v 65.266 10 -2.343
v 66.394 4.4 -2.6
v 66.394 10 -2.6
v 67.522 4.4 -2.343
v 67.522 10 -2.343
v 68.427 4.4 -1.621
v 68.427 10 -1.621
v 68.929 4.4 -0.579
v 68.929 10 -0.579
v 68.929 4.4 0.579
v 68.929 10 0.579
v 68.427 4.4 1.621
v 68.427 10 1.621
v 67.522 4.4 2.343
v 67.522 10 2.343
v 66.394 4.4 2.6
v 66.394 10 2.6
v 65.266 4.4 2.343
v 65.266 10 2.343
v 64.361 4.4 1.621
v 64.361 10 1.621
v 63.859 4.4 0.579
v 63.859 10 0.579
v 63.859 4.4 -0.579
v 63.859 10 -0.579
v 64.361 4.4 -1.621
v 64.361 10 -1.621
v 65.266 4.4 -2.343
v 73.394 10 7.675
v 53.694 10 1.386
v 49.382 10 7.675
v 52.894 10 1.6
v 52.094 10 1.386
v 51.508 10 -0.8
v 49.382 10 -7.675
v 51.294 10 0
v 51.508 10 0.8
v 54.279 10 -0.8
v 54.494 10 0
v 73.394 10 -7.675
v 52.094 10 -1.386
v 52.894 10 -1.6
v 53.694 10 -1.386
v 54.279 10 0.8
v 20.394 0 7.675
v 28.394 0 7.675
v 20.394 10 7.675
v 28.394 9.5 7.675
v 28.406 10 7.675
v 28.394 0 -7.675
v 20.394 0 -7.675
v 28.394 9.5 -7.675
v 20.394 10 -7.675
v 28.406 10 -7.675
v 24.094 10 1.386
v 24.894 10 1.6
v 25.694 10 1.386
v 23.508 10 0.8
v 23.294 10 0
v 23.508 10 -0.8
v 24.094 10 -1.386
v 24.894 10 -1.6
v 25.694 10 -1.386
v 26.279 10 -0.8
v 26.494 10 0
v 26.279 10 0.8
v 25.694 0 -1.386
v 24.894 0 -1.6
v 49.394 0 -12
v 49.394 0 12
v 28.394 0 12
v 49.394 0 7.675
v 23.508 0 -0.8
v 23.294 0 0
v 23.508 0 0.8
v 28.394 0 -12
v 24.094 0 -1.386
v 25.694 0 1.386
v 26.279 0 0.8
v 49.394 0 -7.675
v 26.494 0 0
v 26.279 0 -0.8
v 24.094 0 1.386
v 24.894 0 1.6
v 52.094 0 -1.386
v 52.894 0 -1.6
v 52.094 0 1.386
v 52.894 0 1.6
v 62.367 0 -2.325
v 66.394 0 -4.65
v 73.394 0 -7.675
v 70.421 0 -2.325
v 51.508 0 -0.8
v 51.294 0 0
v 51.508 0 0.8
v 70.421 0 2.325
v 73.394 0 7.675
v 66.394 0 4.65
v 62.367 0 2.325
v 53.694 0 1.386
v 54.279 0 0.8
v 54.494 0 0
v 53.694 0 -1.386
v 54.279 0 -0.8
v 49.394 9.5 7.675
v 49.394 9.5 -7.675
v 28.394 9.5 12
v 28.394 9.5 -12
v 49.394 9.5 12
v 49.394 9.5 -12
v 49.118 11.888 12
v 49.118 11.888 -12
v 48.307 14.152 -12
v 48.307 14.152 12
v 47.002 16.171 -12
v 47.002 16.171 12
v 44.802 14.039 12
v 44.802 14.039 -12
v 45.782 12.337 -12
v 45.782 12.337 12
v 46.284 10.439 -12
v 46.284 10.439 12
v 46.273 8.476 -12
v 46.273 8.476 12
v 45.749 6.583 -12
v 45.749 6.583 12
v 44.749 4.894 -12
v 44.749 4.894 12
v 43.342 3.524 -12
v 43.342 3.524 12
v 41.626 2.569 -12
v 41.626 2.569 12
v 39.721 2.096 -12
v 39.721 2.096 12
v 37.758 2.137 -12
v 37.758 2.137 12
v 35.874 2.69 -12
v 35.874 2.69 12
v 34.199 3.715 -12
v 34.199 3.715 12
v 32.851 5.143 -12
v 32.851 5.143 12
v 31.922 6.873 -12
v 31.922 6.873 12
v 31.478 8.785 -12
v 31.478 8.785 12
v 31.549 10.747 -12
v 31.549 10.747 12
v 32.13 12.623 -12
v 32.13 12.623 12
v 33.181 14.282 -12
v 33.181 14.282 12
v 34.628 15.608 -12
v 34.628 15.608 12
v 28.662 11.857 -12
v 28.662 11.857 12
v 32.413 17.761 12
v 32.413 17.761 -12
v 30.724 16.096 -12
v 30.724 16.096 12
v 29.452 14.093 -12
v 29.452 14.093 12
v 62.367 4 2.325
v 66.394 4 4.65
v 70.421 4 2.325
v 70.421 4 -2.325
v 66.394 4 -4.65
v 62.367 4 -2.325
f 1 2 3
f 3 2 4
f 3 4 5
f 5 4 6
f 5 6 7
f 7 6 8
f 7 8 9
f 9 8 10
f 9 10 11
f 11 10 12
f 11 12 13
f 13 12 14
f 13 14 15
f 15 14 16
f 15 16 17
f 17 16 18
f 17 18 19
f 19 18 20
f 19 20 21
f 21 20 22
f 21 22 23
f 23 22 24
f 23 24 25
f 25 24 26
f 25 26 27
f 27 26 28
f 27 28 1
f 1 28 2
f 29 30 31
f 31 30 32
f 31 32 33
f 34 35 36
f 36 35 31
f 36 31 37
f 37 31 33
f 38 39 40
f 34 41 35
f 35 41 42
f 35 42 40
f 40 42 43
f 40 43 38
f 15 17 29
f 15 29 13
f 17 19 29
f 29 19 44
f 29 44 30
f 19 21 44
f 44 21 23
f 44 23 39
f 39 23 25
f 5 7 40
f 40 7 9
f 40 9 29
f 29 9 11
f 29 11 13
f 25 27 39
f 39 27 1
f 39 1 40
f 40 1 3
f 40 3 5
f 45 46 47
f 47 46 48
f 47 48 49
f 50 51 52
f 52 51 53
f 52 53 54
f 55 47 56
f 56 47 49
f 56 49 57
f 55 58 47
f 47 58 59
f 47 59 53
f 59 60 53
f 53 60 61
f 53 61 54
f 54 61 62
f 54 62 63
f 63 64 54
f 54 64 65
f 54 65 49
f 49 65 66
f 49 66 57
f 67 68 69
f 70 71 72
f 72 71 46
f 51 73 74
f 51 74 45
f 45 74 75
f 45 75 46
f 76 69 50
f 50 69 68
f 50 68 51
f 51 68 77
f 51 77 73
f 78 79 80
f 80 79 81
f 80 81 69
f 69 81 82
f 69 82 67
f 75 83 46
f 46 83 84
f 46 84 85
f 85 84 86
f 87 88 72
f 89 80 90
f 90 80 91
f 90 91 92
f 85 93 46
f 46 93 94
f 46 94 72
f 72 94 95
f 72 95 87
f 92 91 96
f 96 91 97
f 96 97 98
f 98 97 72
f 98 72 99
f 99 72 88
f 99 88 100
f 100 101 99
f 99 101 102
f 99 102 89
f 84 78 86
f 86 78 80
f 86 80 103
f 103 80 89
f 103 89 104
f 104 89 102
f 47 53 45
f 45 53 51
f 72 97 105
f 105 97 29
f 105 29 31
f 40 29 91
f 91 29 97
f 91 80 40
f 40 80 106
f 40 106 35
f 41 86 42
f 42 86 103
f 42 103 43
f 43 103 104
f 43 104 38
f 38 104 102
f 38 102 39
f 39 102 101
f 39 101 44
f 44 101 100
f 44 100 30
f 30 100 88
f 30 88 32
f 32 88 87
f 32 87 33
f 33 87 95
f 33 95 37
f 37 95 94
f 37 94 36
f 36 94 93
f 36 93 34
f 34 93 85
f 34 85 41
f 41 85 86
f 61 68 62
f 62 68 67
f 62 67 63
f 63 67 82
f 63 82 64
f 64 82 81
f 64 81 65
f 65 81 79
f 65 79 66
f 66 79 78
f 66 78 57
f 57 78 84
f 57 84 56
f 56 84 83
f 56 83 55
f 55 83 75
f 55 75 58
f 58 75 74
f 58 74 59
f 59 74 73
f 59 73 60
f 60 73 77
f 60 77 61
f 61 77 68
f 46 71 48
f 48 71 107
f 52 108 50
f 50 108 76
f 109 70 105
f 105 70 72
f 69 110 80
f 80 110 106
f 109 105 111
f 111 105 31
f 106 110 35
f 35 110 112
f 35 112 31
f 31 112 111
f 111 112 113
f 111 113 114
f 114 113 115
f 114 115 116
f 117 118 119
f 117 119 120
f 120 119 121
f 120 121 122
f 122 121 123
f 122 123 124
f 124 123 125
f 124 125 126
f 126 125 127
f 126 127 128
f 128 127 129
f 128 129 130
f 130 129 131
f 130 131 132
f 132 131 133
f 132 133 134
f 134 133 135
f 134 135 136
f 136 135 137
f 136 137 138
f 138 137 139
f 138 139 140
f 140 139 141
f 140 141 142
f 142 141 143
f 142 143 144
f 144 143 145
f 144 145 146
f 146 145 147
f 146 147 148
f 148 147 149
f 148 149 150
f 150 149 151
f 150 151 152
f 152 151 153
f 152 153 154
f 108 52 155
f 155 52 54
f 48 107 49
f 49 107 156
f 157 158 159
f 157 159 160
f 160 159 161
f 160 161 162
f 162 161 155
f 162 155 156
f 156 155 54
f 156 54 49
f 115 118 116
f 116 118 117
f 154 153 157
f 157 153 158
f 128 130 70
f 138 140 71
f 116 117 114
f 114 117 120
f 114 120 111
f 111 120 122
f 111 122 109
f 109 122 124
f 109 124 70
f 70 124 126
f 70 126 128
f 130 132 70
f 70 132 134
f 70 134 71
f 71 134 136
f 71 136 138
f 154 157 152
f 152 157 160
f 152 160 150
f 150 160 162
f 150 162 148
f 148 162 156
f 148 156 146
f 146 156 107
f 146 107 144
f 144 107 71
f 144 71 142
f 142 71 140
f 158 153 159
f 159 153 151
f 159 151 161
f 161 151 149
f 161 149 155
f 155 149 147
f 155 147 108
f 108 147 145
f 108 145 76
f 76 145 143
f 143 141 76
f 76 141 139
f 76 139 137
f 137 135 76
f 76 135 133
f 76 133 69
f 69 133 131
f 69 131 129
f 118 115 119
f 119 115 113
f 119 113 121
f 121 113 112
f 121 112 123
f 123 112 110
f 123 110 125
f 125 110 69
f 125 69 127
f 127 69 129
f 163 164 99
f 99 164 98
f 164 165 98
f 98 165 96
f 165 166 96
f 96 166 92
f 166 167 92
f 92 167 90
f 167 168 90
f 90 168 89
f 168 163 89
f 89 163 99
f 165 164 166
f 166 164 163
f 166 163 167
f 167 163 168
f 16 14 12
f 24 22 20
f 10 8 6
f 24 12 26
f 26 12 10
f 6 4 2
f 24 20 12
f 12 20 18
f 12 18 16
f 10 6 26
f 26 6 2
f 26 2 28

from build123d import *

# Parameters (mm, degrees)
SKETCH1_W                = 53
SKETCH1_H                = 15.35
SKETCH1_R                = 1.6
SKETCH1_R_2              = 2.6
BOSS_EXTRUDE1_DEPTH      = 10
BOSS_EXTRUDE2_DEPTH      = 4.325
BOSS_EXTRUDE2_DEPTH_BACK = 19.675
CUT_EXTRUDE1_DEPTH       = 20.675
CUT_EXTRUDE2_DEPTH       = 4
SKETCH5_R                = 2.6
BOSS_EXTRUDE3_DEPTH      = 0.4


with BuildPart() as part:
    # Sketch1 → Boss-Extrude1 (new body)
    with BuildSketch(Plane(origin=(0, 0, 0), x_dir=(1, 0, 0), z_dir=(0, 1, 0))):
        with Locations((46.893734614, 0)):
            Rectangle(SKETCH1_W, SKETCH1_H)
        with Locations((52.893734614, 0)):
            Circle(SKETCH1_R, mode=Mode.SUBTRACT)
        with Locations((24.893734614, 0)):
            Circle(SKETCH1_R, mode=Mode.SUBTRACT)
        with Locations((66.393734614, 0)):
            Circle(SKETCH1_R_2, mode=Mode.SUBTRACT)
    extrude(amount=BOSS_EXTRUDE1_DEPTH)

    # Sketch2 → Boss-Extrude2 (add, two sides)
    with BuildSketch(Plane(origin=(0, 0, -7.675), x_dir=(-1, 0, 0), z_dir=(0, 0, -1))) as boss_extrude2_sk:
        with BuildLine():
            Line((-44.801648562, 14.038617938), (-47.002272565, 16.170952878))
            ThreePointArc((-47.002272565, 16.170952878), (-48.777803829, 13.043328345), (-49.393734614, 9.5))
            Line((-49.393734614, 9.5), (-49.393734614, 0))
            Line((-49.393734614, 0), (-28.393734614, 0))
            Line((-28.393734614, 0), (-28.393734614, 9.5))
            ThreePointArc((-28.393734614, 9.5), (-29.451814157, 14.09348866), (-32.412808532, 17.761210391))
            Line((-32.412808532, 17.761210391), (-34.628407423, 15.608148979))
            ThreePointArc((-34.628407423, 15.608148979), (-37.757785789, 2.137111962), (-44.801648562, 14.038617938))
        make_face()
    extrude(amount=BOSS_EXTRUDE2_DEPTH)
    extrude(boss_extrude2_sk.sketch, amount=-BOSS_EXTRUDE2_DEPTH_BACK)

    # Sketch3 → Cut-Extrude1 (cut, through all)
    with BuildSketch(Plane.XY.offset(7.675)):
        with BuildLine():
            Line((46.326937154, 10), (31.460532075, 10))
            ThreePointArc((31.460532075, 10), (38.893734614, 2.05), (46.326937154, 10))
        make_face()
    extrude(amount=-CUT_EXTRUDE1_DEPTH, mode=Mode.SUBTRACT)

    # Sketch4 → Cut-Extrude2 (cut)
    with BuildSketch(Plane.XZ):
        Polygon((62.366716487, 2.325), (62.366716487, -2.325), (66.393734614, -4.65), (70.420752742, -2.325), (70.420752742, 2.325), (66.393734614, 4.65), align=None)
    extrude(amount=-CUT_EXTRUDE2_DEPTH, mode=Mode.SUBTRACT)

    # Sketch5 → Boss-Extrude3 (add)
    with BuildSketch(Plane.XZ.offset(-4)):
        with Locations((66.393734614, 0)):
            Circle(SKETCH5_R)
    extrude(amount=-BOSS_EXTRUDE3_DEPTH)


solid = part.part
